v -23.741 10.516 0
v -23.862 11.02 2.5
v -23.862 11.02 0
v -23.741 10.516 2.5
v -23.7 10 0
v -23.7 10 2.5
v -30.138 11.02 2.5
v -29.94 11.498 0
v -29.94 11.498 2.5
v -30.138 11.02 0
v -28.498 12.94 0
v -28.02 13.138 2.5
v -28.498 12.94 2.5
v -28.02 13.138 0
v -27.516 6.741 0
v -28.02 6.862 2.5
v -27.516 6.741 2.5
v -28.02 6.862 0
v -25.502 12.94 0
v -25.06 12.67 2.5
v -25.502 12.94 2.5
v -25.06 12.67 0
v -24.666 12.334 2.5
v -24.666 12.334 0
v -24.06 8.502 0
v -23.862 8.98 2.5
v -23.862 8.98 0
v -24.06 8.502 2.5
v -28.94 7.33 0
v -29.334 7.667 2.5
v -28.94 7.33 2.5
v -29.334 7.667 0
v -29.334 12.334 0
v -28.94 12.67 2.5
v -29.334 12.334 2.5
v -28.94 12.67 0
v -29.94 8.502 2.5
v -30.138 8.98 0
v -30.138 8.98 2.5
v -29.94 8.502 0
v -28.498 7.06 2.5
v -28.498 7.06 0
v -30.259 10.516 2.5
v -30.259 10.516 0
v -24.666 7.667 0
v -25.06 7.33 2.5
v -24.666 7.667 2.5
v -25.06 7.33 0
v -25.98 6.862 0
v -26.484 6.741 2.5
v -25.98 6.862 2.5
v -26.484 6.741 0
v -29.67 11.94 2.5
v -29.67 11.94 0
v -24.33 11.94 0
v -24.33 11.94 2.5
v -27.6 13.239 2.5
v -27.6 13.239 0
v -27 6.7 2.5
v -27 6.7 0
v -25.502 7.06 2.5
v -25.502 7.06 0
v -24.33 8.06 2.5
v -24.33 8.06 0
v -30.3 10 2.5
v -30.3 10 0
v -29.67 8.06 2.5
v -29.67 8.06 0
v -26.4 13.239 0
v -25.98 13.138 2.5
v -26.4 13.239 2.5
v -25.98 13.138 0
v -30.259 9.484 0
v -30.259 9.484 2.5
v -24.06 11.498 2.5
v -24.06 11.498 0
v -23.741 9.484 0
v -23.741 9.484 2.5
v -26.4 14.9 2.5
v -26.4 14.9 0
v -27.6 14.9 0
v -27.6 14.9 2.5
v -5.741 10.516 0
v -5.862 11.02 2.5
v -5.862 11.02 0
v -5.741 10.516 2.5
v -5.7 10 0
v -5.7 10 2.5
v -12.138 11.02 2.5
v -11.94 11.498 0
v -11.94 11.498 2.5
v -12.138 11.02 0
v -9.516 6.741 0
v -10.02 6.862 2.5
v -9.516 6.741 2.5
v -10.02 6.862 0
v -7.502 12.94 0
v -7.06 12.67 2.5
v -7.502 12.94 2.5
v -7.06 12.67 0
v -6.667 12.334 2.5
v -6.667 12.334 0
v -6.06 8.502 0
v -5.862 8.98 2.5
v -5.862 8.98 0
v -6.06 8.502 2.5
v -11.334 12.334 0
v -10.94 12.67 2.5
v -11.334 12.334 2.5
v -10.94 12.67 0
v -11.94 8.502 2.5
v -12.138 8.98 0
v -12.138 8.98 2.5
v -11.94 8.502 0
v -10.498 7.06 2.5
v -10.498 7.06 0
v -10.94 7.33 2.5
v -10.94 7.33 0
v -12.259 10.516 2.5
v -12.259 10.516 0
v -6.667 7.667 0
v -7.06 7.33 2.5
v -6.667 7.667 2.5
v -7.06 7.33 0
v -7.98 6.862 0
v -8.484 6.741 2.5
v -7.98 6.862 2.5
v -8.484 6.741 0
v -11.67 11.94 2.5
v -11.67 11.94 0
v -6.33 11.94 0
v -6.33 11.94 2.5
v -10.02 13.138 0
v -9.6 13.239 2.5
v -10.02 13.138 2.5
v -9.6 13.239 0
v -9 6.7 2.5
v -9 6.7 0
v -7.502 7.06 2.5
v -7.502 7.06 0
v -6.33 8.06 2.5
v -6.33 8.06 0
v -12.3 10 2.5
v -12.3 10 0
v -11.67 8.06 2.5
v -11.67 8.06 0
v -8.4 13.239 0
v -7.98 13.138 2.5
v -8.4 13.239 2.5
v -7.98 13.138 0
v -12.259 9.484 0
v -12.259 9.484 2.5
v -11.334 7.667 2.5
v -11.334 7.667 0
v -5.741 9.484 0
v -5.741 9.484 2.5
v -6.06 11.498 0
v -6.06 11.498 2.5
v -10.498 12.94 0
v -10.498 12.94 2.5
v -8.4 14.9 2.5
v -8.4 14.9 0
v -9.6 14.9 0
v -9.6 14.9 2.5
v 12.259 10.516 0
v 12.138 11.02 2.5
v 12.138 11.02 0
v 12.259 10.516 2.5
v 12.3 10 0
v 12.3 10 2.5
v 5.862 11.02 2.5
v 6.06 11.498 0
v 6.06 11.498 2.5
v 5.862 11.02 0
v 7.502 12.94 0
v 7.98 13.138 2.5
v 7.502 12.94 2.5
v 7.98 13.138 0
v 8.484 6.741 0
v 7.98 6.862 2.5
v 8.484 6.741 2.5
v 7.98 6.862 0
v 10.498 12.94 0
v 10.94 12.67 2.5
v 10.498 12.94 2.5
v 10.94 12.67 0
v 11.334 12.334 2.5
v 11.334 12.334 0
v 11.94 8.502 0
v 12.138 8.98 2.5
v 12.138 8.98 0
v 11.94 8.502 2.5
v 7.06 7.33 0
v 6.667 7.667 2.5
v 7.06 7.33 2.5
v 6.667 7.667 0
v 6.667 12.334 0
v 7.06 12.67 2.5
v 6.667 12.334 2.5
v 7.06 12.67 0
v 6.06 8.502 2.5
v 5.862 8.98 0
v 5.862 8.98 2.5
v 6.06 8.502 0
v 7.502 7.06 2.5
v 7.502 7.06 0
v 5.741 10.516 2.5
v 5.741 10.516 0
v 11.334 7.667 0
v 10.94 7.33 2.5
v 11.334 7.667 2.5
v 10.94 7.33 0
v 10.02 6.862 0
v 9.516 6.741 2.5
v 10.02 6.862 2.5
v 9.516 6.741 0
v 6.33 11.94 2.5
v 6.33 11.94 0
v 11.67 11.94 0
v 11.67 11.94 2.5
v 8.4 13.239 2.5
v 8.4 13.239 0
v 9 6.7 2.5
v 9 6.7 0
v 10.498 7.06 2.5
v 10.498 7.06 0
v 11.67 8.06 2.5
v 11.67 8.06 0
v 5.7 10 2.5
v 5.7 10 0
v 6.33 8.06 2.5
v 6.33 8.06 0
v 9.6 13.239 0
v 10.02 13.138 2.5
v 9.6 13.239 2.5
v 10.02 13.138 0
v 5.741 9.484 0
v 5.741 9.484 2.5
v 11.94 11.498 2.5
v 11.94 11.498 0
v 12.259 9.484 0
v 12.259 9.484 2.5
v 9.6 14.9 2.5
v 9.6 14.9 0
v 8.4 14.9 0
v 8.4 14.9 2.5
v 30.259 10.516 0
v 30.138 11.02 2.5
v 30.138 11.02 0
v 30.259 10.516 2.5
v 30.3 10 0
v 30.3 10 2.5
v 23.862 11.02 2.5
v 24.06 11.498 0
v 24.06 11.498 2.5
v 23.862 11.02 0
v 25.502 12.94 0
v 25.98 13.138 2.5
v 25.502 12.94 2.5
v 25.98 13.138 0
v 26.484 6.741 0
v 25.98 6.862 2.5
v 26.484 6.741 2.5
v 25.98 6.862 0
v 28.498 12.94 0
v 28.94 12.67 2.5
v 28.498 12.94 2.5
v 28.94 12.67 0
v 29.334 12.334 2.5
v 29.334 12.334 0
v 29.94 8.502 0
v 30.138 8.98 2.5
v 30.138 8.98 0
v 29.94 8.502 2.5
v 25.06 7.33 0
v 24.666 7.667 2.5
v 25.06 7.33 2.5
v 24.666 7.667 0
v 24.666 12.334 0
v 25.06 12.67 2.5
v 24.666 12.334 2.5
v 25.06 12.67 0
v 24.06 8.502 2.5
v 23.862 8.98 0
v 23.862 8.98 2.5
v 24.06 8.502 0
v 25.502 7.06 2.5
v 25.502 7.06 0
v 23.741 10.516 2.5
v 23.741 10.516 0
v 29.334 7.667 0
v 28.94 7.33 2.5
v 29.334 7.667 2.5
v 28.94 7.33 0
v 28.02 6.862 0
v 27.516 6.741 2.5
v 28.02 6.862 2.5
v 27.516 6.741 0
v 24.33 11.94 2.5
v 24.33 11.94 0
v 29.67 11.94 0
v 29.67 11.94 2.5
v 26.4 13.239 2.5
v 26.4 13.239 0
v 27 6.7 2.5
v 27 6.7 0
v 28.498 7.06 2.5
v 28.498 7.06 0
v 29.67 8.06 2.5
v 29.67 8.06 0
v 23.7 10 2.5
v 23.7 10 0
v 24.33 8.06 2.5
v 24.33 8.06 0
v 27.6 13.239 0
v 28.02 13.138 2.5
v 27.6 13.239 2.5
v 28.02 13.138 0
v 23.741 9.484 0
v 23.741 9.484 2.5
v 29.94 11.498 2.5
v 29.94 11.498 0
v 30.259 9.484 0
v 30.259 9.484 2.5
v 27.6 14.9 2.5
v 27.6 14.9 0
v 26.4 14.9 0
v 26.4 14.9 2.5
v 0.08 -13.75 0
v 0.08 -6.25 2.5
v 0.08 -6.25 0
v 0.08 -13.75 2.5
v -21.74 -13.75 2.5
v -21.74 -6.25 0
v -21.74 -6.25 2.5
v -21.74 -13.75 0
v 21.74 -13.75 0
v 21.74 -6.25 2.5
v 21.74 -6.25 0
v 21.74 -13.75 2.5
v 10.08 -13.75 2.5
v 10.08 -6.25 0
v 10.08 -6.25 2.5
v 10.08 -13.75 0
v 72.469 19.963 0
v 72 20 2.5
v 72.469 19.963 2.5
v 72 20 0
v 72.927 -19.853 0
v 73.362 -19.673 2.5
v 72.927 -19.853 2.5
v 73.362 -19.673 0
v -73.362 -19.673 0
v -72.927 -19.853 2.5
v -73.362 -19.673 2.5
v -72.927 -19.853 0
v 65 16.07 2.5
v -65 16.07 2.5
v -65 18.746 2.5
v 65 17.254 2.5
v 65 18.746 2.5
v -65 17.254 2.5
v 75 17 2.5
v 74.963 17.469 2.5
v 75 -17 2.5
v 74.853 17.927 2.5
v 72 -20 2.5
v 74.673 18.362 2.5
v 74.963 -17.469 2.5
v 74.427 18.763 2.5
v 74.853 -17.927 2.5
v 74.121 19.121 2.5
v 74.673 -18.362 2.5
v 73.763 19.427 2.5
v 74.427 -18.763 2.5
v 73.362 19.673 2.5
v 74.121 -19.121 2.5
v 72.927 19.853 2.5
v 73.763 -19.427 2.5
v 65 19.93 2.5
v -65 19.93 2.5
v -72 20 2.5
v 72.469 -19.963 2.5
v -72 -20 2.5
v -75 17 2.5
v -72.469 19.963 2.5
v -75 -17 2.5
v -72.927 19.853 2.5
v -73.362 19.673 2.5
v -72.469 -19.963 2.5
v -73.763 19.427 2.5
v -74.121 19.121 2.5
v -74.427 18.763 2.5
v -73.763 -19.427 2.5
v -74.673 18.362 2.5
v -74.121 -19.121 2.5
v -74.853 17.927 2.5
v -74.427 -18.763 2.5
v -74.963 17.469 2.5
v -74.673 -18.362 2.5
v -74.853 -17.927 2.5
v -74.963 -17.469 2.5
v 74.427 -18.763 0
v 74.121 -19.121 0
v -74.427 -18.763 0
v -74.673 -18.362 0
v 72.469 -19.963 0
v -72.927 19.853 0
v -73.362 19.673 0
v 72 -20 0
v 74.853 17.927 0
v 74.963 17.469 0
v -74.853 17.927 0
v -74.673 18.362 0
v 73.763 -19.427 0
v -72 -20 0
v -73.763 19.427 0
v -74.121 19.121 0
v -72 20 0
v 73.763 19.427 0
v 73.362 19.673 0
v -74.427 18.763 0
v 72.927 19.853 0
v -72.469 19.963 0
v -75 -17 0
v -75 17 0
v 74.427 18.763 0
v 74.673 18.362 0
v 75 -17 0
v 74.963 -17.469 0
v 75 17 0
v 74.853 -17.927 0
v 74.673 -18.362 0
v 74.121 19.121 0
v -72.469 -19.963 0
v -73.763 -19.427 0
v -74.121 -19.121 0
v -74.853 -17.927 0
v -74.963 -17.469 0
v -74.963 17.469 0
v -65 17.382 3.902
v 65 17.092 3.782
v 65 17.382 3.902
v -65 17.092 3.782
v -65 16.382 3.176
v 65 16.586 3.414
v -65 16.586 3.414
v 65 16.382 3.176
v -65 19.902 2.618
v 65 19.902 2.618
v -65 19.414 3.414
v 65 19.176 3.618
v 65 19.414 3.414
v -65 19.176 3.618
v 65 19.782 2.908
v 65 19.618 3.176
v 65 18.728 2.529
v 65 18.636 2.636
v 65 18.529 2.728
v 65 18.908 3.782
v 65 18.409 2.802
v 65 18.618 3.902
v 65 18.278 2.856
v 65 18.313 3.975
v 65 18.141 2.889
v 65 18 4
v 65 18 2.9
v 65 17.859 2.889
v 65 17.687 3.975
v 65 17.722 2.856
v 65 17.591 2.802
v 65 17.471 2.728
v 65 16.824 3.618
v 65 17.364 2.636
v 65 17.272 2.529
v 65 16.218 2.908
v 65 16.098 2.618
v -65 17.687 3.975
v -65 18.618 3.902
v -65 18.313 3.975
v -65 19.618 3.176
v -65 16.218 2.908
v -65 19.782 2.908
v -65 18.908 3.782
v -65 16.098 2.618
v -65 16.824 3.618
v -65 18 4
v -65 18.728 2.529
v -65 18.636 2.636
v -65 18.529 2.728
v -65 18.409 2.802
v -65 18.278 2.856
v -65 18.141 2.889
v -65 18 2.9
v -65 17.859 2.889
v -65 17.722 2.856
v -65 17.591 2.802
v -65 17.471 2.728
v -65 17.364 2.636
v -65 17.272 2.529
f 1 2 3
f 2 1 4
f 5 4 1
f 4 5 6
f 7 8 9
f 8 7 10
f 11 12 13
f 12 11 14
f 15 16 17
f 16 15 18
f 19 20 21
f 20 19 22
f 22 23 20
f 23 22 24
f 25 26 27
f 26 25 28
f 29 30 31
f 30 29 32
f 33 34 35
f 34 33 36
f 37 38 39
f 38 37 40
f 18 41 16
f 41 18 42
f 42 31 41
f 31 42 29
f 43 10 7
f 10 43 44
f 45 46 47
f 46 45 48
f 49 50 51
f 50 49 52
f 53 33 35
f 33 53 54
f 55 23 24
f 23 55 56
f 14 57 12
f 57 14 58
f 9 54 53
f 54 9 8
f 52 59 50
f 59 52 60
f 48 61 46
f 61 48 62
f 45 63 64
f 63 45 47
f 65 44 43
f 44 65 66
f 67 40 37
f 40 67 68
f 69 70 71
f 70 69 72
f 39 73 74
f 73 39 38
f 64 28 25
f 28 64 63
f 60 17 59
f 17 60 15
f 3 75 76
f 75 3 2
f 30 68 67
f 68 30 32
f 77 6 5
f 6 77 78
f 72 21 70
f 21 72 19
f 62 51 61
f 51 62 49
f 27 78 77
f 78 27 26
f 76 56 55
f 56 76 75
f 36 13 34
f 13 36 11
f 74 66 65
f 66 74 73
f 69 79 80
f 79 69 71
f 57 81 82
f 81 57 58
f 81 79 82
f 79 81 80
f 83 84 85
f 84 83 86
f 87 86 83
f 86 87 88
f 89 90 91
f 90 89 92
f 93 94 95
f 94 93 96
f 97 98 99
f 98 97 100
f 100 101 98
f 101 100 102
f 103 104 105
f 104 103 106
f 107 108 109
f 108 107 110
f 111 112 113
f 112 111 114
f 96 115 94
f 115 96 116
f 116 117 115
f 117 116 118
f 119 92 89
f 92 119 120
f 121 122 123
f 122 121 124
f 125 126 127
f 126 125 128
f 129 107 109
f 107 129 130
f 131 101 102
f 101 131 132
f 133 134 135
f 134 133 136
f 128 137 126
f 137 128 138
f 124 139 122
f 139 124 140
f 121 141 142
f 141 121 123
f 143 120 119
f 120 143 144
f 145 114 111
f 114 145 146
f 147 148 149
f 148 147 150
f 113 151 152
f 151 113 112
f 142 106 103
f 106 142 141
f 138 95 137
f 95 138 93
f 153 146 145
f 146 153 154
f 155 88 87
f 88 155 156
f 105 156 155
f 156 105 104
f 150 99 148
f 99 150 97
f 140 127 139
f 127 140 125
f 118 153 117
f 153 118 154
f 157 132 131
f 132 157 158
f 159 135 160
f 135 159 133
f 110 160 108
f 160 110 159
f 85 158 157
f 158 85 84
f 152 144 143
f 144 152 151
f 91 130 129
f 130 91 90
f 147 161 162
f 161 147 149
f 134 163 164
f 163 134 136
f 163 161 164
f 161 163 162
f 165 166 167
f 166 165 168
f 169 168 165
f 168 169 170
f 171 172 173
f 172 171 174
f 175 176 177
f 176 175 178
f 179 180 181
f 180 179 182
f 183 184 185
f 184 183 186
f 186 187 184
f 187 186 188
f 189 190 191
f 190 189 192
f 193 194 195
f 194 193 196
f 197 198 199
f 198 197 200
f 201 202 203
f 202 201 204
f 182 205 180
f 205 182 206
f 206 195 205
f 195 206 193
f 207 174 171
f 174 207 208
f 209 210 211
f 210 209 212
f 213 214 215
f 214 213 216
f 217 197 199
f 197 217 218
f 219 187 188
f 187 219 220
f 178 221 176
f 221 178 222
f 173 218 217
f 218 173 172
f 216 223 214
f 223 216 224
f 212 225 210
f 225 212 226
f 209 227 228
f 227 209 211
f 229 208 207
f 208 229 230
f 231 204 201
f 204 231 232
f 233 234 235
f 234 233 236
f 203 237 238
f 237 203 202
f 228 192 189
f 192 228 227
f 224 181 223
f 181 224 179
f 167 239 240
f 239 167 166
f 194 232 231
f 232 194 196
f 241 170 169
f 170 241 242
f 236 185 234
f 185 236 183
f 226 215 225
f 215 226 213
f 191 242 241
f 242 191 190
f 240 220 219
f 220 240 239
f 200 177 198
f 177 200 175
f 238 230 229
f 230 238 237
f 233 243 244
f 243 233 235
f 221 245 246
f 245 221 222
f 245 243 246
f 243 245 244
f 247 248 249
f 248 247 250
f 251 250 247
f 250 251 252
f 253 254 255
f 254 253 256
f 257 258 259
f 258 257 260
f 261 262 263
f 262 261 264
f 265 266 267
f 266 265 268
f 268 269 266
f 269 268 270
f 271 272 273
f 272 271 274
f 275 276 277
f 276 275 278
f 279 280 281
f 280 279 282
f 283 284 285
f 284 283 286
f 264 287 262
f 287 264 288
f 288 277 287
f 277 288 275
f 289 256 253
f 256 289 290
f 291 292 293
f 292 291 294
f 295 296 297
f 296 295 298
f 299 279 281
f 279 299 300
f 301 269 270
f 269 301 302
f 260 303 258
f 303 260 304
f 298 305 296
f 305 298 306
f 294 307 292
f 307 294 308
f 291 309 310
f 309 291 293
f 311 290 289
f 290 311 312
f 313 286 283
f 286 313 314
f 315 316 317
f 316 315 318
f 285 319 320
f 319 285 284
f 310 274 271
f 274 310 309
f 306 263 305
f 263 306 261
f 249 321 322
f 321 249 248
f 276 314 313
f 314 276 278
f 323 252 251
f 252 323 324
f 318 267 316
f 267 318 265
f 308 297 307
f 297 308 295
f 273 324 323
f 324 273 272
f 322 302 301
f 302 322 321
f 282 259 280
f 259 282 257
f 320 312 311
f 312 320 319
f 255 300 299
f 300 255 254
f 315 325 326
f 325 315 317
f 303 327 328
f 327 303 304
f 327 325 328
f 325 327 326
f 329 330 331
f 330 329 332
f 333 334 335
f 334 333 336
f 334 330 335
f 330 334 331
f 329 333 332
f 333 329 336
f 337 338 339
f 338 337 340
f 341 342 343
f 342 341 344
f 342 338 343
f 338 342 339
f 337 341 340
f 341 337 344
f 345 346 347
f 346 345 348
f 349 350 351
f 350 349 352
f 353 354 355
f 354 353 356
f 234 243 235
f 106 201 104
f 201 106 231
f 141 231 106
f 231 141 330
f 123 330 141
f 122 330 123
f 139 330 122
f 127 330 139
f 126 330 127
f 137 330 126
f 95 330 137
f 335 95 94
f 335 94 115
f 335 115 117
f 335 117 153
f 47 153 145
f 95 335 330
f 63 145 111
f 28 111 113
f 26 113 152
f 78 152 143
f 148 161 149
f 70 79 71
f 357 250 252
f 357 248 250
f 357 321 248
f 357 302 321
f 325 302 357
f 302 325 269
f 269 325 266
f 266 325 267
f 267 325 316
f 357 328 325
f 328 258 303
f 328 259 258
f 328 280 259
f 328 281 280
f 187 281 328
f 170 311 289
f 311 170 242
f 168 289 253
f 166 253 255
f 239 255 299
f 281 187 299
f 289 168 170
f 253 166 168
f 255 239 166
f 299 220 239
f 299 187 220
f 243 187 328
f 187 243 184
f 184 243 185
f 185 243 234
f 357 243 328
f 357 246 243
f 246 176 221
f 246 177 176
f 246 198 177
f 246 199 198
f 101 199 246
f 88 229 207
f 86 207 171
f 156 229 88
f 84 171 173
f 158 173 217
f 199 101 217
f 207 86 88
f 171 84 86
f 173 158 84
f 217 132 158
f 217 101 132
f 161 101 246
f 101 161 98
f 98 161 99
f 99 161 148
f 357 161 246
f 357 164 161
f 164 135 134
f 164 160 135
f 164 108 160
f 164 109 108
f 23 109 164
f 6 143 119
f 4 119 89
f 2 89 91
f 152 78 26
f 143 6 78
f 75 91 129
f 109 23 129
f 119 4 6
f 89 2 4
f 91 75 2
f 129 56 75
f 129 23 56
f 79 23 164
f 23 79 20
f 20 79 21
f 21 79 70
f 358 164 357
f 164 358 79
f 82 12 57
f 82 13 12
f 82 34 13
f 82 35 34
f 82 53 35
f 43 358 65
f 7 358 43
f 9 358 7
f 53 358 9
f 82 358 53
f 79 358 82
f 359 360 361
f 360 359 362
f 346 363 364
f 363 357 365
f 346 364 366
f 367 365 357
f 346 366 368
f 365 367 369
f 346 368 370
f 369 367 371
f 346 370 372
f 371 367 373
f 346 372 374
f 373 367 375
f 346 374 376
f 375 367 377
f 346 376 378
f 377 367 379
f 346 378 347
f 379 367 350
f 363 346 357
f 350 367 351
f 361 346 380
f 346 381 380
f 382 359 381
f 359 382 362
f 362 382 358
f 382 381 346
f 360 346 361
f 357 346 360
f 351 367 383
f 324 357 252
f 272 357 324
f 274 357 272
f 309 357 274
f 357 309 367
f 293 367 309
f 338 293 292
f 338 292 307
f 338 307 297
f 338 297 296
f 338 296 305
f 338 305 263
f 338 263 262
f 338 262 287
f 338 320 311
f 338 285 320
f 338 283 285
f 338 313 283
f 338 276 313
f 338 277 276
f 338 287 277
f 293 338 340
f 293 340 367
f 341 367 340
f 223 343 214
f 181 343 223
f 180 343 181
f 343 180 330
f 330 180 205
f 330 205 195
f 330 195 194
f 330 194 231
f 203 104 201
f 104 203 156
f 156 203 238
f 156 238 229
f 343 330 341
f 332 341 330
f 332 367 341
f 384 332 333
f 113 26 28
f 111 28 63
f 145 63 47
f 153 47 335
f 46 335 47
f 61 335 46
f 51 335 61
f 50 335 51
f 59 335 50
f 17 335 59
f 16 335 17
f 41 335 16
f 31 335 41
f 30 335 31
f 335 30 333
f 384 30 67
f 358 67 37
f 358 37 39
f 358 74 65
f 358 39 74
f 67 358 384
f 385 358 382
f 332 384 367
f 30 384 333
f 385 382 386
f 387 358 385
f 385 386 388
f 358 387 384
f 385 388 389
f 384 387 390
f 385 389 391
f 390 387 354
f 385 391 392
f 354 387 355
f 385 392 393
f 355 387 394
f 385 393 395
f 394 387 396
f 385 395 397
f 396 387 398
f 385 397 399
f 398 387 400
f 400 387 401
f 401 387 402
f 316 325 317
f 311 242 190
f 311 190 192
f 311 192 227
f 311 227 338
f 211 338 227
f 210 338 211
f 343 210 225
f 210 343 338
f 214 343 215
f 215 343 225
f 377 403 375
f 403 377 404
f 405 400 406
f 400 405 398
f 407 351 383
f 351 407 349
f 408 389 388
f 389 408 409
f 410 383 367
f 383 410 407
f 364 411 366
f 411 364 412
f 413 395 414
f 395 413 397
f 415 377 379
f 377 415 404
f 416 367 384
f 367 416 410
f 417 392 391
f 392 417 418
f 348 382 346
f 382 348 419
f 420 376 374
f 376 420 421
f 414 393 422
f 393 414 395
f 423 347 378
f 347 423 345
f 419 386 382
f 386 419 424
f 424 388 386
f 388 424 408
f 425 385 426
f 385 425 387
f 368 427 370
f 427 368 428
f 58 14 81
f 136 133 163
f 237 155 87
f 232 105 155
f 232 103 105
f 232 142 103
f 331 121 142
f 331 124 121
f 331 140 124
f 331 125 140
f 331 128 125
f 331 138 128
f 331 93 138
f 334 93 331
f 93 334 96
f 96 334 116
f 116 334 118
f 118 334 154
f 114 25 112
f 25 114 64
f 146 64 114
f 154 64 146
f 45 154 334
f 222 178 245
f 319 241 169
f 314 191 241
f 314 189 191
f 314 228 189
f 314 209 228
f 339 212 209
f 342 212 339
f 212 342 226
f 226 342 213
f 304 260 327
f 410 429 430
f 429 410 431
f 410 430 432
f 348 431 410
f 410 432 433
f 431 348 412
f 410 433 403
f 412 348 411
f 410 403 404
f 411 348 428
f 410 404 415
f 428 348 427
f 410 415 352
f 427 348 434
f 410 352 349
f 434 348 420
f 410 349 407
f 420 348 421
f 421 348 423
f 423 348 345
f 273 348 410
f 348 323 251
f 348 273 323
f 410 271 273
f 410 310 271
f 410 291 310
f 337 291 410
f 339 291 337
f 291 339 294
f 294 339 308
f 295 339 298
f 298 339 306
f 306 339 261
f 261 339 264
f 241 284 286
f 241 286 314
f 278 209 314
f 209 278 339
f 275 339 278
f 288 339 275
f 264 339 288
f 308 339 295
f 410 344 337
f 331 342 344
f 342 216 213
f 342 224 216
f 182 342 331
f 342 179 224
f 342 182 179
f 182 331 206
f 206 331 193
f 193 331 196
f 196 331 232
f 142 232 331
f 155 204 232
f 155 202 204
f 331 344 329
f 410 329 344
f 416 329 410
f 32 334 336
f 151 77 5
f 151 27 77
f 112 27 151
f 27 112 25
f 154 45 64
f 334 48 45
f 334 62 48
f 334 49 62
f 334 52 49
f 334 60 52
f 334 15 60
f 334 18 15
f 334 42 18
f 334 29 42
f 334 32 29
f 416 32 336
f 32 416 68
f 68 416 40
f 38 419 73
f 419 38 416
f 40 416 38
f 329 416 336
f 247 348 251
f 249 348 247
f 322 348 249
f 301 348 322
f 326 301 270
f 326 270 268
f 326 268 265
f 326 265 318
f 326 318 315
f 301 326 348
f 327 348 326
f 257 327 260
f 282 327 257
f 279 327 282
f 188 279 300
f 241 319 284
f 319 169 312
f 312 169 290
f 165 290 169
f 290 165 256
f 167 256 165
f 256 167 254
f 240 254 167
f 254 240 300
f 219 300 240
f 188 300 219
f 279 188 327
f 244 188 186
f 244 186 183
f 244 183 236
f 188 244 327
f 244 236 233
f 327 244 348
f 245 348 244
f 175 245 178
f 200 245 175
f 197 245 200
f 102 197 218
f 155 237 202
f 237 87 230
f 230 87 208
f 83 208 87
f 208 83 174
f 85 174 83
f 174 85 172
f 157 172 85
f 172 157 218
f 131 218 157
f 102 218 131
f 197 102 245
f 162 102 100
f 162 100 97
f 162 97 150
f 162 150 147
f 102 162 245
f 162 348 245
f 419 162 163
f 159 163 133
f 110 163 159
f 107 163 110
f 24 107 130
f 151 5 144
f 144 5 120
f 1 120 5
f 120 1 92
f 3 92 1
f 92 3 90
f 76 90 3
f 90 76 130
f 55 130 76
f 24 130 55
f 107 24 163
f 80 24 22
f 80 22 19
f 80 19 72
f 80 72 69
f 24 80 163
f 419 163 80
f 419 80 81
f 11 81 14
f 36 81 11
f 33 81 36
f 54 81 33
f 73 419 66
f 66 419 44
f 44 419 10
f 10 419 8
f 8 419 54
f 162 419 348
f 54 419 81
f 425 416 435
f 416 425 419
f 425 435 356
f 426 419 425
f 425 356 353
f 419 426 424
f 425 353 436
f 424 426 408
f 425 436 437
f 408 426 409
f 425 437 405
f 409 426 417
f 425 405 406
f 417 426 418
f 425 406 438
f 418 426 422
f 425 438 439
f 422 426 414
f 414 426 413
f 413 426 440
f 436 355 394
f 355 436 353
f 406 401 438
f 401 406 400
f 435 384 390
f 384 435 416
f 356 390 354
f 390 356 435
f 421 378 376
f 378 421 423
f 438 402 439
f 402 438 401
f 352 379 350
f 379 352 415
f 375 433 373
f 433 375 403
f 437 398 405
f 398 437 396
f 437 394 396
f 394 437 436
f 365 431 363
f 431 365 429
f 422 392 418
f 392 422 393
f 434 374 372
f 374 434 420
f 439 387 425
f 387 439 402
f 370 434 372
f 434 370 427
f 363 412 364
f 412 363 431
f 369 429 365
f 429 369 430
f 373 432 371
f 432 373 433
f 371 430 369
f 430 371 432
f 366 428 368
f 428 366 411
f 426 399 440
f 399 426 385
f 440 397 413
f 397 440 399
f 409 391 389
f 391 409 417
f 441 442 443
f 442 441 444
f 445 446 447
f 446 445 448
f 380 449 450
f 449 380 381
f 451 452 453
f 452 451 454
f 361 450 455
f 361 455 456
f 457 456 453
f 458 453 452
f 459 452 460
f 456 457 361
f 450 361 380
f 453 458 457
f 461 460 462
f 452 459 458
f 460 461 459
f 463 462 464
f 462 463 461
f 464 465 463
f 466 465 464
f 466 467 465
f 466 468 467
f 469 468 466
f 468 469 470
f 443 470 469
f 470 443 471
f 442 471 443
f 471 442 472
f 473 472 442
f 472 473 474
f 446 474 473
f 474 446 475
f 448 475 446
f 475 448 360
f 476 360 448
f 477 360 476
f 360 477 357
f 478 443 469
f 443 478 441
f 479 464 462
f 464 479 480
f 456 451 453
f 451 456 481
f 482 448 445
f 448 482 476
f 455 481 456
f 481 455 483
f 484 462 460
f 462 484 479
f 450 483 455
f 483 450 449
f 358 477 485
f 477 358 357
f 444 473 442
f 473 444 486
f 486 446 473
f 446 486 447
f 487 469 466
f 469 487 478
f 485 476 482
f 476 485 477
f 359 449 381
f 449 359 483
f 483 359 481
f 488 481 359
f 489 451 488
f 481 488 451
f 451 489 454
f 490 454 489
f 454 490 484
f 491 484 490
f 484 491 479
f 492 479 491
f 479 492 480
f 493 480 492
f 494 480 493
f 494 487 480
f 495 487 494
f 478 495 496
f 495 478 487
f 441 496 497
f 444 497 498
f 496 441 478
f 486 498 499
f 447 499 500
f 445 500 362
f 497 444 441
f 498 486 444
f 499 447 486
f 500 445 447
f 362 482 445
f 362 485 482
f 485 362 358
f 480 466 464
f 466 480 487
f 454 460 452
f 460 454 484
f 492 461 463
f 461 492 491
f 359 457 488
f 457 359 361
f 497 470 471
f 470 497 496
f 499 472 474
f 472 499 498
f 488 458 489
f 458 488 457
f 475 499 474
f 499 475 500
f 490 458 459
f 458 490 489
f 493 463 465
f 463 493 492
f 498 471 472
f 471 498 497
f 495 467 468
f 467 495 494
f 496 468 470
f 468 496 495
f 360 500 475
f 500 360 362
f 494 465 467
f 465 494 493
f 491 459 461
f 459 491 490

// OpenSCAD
// Switch plate for the field slate (ADR-119 §1, §3): C&K miniature toggles and DIP switches
// under a hinged cover. Measure your switches; C&K miniature toggles (7000 series) commonly use
// a 1/4-40 (6.35 mm) bushing, and DIP windows depend on the position count.

/* [Plate] */
plate_w     = 150;
plate_h     = 40;
plate_t     = 2.5;
corner_r    = 3;

/* [Toggles] */
toggle_count   = 4;
toggle_bushing = 6.6;    // hole for a 6.35 mm bushing plus clearance
toggle_pitch   = 18;
toggle_key     = true;   // anti-rotation key slot
toggle_y       = 10;

/* [DIP switches] */
dip_positions  = [8, 4];  // banks, left to right
dip_pitch      = 2.54;    // pitch per position
dip_win_h      = 7.5;     // window height over the actuators
dip_gap        = 10;
dip_y          = -10;

/* [Cover hinge] */
hinge_d        = 4;
hinge_len      = plate_w - 20;

$fn = 40;

module plate() {
  union() {
    difference() {
        linear_extrude(plate_t) offset(corner_r) offset(-corner_r)
            square([plate_w, plate_h], center = true);
        // toggles
        start = -(toggle_count - 1) * toggle_pitch / 2;
        for (i = [0 : toggle_count - 1]) {
            translate([start + i*toggle_pitch, toggle_y, -1]) cylinder(d = toggle_bushing, h = plate_t + 2);
            if (toggle_key) translate([start + i*toggle_pitch - 0.6, toggle_y + toggle_bushing/2 - 0.4, -1]) cube([1.2, 2.0, plate_t + 2]);
        }
        // DIP windows
        widths = [for (n = dip_positions) n * dip_pitch + 1.5];
        total  = sum(widths) + dip_gap * (len(widths) - 1);
        for (b = [0 : len(widths) - 1]) {
            x0 = -total/2 + sum_to(widths, b) + b*dip_gap;
            translate([x0, dip_y - dip_win_h/2, -1]) cube([widths[b], dip_win_h, plate_t + 2]);
        }
    }
    // hinge knuckle along the top edge for the cover (sunk 0.5 mm into the plate for a clean union)
    translate([-hinge_len/2, plate_h/2 - hinge_d/2, plate_t - 0.5]) rotate([0, 90, 0])
        difference() { cylinder(d = hinge_d, h = hinge_len); translate([0, 0, -1]) cylinder(d = 1.8, h = hinge_len + 2); }
  }
}

function sum(v, i = 0) = i >= len(v) ? 0 : v[i] + sum(v, i + 1);
function sum_to(v, n, i = 0) = i >= n ? 0 : v[i] + sum_to(v, n, i + 1);

plate();
